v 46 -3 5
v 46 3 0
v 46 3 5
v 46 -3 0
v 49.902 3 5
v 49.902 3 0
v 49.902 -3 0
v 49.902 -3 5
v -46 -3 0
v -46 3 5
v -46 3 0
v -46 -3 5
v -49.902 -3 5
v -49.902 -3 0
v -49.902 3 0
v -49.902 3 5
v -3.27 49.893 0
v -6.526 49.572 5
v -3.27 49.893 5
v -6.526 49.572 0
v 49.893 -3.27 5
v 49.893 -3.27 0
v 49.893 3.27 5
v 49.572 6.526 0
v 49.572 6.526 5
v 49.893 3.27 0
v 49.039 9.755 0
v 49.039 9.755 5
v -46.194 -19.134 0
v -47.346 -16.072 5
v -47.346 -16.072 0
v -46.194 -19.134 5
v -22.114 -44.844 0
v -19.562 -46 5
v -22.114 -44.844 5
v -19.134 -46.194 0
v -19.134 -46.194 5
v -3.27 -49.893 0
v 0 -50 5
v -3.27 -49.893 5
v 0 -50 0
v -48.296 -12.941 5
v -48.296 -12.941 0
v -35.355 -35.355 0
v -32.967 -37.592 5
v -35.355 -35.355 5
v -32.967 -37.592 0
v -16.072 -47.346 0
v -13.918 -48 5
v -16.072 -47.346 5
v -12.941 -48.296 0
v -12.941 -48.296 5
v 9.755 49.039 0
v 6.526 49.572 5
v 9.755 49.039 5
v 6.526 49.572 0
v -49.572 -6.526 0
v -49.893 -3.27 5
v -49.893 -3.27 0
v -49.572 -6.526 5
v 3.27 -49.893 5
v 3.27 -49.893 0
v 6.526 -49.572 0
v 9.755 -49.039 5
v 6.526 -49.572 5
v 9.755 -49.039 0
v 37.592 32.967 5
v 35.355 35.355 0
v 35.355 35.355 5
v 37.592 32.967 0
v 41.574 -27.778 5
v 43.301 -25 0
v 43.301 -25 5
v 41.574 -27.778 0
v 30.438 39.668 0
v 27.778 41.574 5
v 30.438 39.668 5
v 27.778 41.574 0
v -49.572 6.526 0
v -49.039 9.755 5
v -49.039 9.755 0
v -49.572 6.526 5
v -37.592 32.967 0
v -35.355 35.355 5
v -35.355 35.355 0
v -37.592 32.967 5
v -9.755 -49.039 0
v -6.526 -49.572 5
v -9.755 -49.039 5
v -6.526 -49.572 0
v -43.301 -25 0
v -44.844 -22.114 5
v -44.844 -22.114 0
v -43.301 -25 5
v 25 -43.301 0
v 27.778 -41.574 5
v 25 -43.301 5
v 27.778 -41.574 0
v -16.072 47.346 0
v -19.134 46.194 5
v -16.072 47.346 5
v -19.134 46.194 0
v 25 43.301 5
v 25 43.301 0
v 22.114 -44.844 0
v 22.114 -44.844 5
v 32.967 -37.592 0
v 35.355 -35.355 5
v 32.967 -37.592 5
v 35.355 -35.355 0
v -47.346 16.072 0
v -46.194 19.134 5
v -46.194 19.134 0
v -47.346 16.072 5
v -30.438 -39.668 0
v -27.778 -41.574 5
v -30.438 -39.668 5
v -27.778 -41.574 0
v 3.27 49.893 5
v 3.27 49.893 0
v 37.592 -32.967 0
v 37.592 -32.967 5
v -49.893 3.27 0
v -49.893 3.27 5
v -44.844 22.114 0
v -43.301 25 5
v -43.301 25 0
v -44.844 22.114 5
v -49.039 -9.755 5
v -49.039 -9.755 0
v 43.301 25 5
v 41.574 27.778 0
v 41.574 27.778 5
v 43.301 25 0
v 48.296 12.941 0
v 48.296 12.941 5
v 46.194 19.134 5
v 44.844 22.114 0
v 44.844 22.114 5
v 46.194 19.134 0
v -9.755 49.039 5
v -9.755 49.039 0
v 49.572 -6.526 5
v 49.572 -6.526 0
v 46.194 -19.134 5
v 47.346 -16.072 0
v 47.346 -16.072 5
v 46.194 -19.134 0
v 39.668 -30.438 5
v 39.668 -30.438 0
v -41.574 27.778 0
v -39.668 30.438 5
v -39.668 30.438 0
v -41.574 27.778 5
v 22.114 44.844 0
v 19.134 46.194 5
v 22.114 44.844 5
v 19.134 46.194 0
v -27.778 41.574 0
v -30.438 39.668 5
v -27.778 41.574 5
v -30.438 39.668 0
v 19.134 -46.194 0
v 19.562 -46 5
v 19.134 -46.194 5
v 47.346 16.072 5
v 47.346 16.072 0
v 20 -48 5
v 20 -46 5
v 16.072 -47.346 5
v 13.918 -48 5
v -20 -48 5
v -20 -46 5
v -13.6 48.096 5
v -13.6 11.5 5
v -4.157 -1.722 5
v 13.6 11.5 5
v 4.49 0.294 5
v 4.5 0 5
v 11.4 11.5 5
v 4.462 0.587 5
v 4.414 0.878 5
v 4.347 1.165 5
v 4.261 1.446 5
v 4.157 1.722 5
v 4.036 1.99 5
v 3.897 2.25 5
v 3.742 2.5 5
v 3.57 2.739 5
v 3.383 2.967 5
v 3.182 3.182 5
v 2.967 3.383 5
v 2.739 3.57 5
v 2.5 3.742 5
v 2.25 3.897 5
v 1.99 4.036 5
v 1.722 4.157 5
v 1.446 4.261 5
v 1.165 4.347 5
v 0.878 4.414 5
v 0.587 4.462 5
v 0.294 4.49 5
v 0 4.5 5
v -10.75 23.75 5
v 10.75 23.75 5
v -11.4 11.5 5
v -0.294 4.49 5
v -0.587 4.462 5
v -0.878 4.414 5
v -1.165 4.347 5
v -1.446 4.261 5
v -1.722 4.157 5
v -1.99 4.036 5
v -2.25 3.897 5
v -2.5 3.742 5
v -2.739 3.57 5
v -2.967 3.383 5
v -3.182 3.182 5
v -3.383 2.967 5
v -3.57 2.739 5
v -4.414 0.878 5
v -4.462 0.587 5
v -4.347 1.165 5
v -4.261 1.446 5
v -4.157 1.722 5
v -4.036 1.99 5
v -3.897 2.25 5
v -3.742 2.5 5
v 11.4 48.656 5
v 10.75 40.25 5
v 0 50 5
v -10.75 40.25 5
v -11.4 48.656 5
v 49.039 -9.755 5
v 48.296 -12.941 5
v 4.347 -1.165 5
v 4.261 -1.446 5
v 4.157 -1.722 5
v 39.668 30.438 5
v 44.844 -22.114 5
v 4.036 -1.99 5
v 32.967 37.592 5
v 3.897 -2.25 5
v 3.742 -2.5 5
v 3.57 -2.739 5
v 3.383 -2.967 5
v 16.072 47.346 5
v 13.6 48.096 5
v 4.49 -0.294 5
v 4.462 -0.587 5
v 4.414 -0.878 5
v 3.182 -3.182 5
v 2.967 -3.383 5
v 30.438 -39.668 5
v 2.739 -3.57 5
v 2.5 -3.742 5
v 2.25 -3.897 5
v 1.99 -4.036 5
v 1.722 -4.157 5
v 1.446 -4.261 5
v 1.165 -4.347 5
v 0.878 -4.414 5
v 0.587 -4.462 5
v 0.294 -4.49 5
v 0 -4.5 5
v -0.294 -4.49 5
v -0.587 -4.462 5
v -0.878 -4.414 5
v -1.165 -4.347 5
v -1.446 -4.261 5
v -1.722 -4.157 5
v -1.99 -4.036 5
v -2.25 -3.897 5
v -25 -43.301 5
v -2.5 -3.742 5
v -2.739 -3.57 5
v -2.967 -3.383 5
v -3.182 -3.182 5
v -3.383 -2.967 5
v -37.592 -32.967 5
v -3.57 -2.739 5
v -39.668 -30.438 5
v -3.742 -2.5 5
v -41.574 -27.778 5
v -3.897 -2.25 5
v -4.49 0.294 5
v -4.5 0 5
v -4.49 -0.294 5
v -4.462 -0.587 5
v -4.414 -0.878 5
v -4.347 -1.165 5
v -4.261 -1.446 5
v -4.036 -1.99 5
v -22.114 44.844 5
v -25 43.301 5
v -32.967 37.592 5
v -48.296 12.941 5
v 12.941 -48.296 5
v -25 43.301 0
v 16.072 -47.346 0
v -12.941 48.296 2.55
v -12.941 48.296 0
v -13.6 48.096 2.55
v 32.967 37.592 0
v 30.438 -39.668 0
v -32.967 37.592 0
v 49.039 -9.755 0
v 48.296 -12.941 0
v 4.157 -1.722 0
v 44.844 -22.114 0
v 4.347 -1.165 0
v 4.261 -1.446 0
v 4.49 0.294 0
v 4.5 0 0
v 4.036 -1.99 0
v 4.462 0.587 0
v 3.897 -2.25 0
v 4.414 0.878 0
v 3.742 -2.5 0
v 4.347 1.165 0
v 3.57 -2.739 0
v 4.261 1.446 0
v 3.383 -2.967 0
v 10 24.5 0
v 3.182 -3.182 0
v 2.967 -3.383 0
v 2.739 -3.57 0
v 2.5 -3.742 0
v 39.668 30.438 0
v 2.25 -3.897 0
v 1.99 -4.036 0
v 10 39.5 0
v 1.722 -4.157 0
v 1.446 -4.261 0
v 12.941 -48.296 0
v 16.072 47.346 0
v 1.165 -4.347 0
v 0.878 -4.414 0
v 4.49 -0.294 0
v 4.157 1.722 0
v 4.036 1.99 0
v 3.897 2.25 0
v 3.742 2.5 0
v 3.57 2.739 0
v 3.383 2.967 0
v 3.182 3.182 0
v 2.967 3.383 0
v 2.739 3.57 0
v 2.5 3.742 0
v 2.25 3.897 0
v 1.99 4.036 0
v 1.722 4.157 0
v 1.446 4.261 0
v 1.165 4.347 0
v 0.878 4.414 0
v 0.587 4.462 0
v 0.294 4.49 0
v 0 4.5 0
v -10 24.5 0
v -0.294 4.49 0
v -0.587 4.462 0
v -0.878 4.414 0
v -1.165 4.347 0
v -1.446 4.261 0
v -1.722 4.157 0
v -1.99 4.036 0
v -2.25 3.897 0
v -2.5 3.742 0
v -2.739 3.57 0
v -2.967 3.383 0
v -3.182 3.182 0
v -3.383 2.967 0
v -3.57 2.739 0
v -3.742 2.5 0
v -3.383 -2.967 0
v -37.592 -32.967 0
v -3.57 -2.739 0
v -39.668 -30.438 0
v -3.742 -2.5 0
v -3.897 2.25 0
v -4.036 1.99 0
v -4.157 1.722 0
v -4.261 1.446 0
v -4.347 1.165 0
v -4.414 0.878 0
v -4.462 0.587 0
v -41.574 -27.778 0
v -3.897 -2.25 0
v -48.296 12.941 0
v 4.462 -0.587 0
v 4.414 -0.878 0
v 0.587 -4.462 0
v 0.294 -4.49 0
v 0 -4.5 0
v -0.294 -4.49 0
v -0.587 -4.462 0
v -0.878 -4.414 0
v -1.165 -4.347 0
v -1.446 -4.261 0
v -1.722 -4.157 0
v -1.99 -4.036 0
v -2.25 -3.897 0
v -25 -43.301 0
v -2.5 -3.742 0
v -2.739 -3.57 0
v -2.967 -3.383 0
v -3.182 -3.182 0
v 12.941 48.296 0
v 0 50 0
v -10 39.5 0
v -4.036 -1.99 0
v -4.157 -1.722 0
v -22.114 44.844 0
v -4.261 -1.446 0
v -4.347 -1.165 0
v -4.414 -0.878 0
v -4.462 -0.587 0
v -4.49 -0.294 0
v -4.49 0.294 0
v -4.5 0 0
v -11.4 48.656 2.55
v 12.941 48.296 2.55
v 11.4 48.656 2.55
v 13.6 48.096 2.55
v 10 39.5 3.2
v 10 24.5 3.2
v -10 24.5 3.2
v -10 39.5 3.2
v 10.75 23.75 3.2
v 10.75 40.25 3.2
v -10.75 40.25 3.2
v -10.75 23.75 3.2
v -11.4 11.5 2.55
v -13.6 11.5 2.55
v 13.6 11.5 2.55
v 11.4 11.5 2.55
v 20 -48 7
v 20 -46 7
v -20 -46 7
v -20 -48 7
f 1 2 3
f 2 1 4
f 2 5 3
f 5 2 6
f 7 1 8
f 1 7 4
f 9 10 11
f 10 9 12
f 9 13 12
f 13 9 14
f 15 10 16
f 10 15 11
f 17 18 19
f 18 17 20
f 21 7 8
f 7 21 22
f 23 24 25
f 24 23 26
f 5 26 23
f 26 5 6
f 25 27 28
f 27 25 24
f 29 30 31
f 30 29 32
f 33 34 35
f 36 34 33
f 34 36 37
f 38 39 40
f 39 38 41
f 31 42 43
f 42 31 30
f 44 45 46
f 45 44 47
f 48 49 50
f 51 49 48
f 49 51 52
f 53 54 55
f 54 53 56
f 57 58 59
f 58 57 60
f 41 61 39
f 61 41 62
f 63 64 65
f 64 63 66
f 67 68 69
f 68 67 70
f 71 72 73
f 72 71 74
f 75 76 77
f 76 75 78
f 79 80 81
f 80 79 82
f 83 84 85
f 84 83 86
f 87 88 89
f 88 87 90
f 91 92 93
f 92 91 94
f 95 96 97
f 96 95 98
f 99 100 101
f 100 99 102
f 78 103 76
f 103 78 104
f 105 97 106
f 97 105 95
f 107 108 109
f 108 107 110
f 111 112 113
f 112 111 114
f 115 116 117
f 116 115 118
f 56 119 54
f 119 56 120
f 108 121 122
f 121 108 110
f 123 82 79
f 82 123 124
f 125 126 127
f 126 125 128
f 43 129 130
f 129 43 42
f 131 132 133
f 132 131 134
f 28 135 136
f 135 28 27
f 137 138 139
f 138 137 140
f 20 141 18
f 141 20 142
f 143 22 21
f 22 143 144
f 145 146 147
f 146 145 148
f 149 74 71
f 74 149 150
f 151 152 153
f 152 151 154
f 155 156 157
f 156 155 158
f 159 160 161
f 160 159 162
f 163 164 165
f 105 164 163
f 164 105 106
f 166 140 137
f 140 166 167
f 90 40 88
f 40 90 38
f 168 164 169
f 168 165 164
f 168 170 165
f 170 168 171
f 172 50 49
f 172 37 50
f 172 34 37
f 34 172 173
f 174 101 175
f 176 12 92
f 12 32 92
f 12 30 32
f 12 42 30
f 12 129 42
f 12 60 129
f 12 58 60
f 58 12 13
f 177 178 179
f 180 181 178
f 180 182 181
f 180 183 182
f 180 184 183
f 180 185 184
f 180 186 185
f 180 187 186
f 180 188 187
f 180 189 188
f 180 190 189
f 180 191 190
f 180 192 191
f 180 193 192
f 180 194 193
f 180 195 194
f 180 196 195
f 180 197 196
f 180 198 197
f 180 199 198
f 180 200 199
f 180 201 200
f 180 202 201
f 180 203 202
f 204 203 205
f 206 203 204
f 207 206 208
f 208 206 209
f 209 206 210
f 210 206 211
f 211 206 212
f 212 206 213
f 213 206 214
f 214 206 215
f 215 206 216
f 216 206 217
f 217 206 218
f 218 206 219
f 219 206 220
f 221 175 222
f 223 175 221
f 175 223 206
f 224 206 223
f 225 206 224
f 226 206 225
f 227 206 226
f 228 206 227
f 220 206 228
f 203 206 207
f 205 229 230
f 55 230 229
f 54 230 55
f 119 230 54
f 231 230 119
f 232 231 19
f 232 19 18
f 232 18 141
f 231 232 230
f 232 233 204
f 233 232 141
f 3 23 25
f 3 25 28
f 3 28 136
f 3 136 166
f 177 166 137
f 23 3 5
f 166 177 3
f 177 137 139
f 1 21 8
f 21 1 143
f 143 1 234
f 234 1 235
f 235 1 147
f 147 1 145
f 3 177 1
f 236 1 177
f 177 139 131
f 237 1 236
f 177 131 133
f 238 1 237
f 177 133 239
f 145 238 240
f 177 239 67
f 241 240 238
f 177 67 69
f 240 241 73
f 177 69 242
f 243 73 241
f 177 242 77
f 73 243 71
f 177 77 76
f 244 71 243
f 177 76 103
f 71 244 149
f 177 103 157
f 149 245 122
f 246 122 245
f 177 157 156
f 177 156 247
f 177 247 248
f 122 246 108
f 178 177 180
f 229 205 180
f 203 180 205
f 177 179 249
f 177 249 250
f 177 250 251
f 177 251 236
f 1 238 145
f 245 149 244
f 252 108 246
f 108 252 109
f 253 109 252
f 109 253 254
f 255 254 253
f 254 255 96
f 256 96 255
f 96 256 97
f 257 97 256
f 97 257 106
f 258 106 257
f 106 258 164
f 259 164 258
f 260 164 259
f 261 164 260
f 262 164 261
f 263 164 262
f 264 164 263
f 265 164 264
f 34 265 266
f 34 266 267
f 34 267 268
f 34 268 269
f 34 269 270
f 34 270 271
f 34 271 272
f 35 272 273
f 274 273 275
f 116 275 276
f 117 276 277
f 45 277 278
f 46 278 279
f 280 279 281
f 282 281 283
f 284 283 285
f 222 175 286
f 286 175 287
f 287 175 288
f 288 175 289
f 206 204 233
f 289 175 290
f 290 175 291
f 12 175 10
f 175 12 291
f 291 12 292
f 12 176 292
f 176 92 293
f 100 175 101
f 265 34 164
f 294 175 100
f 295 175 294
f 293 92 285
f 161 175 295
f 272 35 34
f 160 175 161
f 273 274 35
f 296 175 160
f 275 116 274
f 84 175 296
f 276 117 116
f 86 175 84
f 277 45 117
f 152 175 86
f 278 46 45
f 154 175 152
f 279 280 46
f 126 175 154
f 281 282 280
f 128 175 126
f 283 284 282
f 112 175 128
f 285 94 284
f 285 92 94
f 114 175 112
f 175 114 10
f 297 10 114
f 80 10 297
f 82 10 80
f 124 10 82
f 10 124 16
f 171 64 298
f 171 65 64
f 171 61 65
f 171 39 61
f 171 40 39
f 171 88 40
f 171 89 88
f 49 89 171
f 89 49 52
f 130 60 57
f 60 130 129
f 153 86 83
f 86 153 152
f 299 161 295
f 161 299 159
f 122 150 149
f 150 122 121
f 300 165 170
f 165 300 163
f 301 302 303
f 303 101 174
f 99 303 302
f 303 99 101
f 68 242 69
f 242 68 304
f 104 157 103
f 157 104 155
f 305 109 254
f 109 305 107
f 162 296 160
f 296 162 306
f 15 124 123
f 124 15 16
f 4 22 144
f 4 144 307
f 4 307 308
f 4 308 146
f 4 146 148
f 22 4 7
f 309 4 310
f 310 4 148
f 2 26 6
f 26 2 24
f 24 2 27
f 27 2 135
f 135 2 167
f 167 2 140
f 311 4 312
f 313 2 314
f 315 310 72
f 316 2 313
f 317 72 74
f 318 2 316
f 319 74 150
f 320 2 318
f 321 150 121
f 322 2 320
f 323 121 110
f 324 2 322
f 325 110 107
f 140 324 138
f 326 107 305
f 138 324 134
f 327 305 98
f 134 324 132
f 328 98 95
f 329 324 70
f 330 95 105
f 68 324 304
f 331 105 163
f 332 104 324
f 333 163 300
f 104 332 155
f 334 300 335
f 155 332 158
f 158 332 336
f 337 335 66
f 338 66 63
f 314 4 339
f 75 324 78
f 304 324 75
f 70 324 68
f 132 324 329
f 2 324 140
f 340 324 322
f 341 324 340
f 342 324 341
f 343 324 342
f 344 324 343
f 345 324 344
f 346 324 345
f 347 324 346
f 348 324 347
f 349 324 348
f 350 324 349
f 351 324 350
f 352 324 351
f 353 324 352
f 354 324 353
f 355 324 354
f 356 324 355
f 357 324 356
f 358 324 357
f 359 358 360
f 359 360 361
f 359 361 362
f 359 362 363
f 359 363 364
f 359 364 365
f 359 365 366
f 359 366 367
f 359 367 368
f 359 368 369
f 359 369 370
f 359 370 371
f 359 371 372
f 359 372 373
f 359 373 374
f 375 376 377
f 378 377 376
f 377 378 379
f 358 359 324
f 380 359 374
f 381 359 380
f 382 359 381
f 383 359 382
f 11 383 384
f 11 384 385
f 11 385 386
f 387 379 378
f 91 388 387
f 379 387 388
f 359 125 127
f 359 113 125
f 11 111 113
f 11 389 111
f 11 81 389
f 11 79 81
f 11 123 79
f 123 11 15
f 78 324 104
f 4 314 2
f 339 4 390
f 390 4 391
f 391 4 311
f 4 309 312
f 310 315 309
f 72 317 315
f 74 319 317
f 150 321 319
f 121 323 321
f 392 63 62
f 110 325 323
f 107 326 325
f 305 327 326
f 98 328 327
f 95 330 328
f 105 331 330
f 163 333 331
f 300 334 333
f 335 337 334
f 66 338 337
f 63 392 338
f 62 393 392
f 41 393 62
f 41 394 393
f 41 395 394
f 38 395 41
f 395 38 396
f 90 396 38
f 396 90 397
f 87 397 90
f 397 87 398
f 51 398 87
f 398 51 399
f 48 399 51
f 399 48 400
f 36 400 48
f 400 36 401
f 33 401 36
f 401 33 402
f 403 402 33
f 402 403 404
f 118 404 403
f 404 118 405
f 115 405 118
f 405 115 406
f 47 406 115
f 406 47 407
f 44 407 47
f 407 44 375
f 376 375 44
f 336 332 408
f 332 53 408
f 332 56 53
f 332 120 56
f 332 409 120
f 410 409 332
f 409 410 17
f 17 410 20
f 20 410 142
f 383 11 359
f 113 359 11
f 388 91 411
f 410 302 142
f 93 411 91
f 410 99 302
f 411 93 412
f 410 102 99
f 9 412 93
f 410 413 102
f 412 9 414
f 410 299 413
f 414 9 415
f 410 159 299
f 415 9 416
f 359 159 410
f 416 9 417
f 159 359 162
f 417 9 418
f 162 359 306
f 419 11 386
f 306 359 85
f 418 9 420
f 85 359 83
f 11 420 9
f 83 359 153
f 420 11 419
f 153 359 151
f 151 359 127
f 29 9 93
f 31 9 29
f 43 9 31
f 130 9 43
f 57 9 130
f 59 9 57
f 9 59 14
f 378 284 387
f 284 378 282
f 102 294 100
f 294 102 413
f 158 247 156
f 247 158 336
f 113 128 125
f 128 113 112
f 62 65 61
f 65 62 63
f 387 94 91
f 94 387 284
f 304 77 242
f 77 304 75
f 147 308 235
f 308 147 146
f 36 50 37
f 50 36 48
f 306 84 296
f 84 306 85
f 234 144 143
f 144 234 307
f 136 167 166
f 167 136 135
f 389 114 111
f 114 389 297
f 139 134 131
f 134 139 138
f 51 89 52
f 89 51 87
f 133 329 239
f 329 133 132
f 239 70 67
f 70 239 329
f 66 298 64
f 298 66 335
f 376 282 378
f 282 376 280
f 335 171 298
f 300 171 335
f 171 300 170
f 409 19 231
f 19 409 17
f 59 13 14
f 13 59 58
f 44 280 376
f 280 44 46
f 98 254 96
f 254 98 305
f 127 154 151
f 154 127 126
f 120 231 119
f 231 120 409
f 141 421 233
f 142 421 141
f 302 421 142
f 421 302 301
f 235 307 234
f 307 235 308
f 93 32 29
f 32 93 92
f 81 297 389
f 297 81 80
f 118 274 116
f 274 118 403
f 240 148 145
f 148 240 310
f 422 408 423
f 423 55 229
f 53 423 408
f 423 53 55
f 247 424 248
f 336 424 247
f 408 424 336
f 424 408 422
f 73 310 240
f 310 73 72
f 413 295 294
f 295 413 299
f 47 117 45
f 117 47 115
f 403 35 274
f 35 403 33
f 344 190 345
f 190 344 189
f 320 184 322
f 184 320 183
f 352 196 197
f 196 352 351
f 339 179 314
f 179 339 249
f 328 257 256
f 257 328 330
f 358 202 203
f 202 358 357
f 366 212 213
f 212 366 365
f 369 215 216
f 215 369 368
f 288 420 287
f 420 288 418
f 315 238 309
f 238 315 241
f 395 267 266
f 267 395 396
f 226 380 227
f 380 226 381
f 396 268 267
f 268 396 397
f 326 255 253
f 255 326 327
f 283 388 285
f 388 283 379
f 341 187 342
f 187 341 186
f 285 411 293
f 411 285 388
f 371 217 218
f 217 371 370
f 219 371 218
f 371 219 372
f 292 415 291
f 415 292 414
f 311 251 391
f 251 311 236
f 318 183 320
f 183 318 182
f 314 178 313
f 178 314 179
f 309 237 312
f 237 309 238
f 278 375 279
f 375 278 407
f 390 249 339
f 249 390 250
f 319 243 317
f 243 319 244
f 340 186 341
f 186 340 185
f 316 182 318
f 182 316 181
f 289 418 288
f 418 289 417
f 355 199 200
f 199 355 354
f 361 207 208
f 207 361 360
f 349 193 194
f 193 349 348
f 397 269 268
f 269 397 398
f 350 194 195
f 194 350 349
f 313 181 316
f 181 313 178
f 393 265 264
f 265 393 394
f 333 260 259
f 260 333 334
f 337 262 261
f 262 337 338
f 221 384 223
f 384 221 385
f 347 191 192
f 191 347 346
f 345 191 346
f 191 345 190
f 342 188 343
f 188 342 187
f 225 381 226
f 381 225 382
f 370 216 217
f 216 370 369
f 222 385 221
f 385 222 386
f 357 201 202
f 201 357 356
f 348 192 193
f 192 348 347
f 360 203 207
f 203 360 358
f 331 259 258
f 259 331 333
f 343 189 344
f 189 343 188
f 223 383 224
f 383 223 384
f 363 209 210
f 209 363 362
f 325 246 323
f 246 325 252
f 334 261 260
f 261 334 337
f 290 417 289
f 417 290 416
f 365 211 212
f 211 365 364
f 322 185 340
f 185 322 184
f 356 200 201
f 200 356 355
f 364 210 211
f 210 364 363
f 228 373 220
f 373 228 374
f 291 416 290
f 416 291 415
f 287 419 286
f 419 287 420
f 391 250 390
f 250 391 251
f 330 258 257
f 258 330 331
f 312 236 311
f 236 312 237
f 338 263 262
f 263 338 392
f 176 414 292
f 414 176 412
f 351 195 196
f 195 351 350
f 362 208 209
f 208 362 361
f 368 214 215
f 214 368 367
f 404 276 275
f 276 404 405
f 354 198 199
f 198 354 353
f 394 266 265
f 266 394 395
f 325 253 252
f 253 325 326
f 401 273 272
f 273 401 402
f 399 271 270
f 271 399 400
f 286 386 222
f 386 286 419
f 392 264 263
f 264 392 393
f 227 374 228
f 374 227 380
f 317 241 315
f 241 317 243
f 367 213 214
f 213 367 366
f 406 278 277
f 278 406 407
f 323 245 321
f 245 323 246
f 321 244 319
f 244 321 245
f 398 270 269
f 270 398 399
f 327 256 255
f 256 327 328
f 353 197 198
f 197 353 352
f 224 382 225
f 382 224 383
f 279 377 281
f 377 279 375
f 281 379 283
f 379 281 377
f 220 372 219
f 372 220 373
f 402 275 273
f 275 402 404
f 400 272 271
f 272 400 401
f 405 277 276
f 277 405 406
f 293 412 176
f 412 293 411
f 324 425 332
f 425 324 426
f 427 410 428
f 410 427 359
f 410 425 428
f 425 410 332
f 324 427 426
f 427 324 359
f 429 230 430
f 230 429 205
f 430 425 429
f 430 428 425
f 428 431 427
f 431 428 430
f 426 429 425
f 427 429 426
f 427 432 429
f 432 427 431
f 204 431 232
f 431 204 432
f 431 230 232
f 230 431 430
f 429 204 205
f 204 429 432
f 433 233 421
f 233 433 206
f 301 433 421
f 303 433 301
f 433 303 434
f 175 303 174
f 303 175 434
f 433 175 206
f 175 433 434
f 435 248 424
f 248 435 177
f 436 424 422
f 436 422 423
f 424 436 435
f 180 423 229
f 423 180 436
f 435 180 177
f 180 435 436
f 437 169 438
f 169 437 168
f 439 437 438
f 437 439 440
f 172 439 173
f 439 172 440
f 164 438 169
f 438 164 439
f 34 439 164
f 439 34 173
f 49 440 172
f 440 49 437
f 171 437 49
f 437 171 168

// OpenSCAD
// file: parameters.scad
// Shared parametric dimensions — Automated Pill Dispenser (full prototype print set)
// include <parameters.scad>;

// ----- Global print / fit -----
layer_h         = 0.2;
nozzle_d        = 0.4;
wall            = 2.4;
clearance_slip  = 0.30;
clearance_press = 0.08;

// ----- Arduino Nano 33 BLE -----
nano_l = 45.0;
nano_w = 18.0;
nano_h = 7.0;
nano_usb_w = 9.0;
nano_usb_h = 4.0;

// ----- MG90S servo -----
servo_l = 22.8;
servo_w = 12.2;
servo_h = 28.5;
servo_tab_l = 32.2;
servo_horn_od = 7.0;
servo_shaft_clear_d = 9.0;

// ----- LiPo + TP4056 -----
lipo_l = 30.0;
lipo_w = 20.0;
lipo_h = 6.0;
tp4056_l = 26.0;
tp4056_w = 17.0;
tp4056_h = 5.0;
tp4056_usbc_w = 9.5;
tp4056_usbc_h = 4.0;

// ----- Part A enclosure -----
base_outer_xy = 120.0;
base_outer_h  = 42.0;
chute_angle   = 45.0;
chute_w       = 22.0;

// ----- Part B plate -----
base_plate_dia = 100.0;
base_plate_h   = 5.0;
drop_w         = 20.0;
drop_d         = 15.0;
drop_r_offset  = 32.0;

// ----- Part C carousel -----
car_dia     = 98.0;
car_h       = 25.0;
car_pockets = 8;
car_wall    = 2.0;
car_hub_od  = 18.0;
car_hub_id  = servo_horn_od - clearance_press;

// ----- Part D latch gate -----
gate_travel    = 22.0;
gate_thickness = 2.4;
gate_w         = drop_w + 6.0;
gate_l         = drop_d + gate_travel + 8.0;

// ----- Part E carousel lid -----
lid_dia        = car_dia + 4.0;
lid_h          = 3.0;
lid_lip_h      = 6.0;
lid_clearance  = 0.5;

// ----- Part F catch tray (vision landing zone) -----
tray_l = 90.0;
tray_w = 70.0;
tray_h = 12.0;
tray_floor = 2.0;
tray_well_margin = 6.0;

// ----- Part G chute spout -----
spout_len = 35.0;
spout_flare = 28.0;

// ----- Part H latch servo bracket -----
bracket_wall = 2.4;

// ----- Part I cable clips -----
clip_w = 10.0;
clip_span = 6.0;

// ----- Part J feet -----
foot_od = 14.0;
foot_h  = 4.0;

// ----- Part K pill pocket insert (optional reducer) -----
insert_h = car_h - 2.0;
insert_outer_clear = 0.35;
// main file
// Part B — Stationary base plate (drop floor)
// Export STL → cad/stl/part_b_base_plate.stl
// Print flat on face. No supports.

include <parameters.scad>;

$fn = 96;

module part_b_base_plate() {
    difference() {
        cylinder(h = base_plate_h, d = base_plate_dia, center = false);

        // Servo shaft / horn clearance at center
        translate([0, 0, -0.1])
            cylinder(h = base_plate_h + 0.2, d = servo_shaft_clear_d, center = false);

        // Drop hole over chute (toward +Y)
        translate([0, drop_r_offset, base_plate_h / 2])
            cube([drop_w, drop_d, base_plate_h + 2], center = true);

        // Countersink ring so pills don't catch on hole edge
        translate([0, drop_r_offset, base_plate_h - 0.8])
            cube([drop_w + 1.5, drop_d + 1.5, 2], center = true);

        // Latch rail slots (Part D slides here) — shallow grooves beside drop hole
        translate([-(drop_w / 2 + 2.5), drop_r_offset, base_plate_h - 1.2])
            cube([2.2, gate_l - 4, 2.5], center = true);
        translate([+(drop_w / 2 + 2.5), drop_r_offset, base_plate_h - 1.2])
            cube([2.2, gate_l - 4, 2.5], center = true);

        // Alignment notches for enclosure (optional keying)
        for (a = [0, 180])
            rotate([0, 0, a])
                translate([base_plate_dia / 2 - 2, 0, base_plate_h / 2])
                    cube([4, 6, base_plate_h + 1], center = true);
    }

    // Small fence lip opposite drop hole to keep pills from escaping rear
    translate([0, -base_plate_dia / 2 + 3, base_plate_h + 1])
        cube([40, 2, 2], center = true);
}

part_b_base_plate();
